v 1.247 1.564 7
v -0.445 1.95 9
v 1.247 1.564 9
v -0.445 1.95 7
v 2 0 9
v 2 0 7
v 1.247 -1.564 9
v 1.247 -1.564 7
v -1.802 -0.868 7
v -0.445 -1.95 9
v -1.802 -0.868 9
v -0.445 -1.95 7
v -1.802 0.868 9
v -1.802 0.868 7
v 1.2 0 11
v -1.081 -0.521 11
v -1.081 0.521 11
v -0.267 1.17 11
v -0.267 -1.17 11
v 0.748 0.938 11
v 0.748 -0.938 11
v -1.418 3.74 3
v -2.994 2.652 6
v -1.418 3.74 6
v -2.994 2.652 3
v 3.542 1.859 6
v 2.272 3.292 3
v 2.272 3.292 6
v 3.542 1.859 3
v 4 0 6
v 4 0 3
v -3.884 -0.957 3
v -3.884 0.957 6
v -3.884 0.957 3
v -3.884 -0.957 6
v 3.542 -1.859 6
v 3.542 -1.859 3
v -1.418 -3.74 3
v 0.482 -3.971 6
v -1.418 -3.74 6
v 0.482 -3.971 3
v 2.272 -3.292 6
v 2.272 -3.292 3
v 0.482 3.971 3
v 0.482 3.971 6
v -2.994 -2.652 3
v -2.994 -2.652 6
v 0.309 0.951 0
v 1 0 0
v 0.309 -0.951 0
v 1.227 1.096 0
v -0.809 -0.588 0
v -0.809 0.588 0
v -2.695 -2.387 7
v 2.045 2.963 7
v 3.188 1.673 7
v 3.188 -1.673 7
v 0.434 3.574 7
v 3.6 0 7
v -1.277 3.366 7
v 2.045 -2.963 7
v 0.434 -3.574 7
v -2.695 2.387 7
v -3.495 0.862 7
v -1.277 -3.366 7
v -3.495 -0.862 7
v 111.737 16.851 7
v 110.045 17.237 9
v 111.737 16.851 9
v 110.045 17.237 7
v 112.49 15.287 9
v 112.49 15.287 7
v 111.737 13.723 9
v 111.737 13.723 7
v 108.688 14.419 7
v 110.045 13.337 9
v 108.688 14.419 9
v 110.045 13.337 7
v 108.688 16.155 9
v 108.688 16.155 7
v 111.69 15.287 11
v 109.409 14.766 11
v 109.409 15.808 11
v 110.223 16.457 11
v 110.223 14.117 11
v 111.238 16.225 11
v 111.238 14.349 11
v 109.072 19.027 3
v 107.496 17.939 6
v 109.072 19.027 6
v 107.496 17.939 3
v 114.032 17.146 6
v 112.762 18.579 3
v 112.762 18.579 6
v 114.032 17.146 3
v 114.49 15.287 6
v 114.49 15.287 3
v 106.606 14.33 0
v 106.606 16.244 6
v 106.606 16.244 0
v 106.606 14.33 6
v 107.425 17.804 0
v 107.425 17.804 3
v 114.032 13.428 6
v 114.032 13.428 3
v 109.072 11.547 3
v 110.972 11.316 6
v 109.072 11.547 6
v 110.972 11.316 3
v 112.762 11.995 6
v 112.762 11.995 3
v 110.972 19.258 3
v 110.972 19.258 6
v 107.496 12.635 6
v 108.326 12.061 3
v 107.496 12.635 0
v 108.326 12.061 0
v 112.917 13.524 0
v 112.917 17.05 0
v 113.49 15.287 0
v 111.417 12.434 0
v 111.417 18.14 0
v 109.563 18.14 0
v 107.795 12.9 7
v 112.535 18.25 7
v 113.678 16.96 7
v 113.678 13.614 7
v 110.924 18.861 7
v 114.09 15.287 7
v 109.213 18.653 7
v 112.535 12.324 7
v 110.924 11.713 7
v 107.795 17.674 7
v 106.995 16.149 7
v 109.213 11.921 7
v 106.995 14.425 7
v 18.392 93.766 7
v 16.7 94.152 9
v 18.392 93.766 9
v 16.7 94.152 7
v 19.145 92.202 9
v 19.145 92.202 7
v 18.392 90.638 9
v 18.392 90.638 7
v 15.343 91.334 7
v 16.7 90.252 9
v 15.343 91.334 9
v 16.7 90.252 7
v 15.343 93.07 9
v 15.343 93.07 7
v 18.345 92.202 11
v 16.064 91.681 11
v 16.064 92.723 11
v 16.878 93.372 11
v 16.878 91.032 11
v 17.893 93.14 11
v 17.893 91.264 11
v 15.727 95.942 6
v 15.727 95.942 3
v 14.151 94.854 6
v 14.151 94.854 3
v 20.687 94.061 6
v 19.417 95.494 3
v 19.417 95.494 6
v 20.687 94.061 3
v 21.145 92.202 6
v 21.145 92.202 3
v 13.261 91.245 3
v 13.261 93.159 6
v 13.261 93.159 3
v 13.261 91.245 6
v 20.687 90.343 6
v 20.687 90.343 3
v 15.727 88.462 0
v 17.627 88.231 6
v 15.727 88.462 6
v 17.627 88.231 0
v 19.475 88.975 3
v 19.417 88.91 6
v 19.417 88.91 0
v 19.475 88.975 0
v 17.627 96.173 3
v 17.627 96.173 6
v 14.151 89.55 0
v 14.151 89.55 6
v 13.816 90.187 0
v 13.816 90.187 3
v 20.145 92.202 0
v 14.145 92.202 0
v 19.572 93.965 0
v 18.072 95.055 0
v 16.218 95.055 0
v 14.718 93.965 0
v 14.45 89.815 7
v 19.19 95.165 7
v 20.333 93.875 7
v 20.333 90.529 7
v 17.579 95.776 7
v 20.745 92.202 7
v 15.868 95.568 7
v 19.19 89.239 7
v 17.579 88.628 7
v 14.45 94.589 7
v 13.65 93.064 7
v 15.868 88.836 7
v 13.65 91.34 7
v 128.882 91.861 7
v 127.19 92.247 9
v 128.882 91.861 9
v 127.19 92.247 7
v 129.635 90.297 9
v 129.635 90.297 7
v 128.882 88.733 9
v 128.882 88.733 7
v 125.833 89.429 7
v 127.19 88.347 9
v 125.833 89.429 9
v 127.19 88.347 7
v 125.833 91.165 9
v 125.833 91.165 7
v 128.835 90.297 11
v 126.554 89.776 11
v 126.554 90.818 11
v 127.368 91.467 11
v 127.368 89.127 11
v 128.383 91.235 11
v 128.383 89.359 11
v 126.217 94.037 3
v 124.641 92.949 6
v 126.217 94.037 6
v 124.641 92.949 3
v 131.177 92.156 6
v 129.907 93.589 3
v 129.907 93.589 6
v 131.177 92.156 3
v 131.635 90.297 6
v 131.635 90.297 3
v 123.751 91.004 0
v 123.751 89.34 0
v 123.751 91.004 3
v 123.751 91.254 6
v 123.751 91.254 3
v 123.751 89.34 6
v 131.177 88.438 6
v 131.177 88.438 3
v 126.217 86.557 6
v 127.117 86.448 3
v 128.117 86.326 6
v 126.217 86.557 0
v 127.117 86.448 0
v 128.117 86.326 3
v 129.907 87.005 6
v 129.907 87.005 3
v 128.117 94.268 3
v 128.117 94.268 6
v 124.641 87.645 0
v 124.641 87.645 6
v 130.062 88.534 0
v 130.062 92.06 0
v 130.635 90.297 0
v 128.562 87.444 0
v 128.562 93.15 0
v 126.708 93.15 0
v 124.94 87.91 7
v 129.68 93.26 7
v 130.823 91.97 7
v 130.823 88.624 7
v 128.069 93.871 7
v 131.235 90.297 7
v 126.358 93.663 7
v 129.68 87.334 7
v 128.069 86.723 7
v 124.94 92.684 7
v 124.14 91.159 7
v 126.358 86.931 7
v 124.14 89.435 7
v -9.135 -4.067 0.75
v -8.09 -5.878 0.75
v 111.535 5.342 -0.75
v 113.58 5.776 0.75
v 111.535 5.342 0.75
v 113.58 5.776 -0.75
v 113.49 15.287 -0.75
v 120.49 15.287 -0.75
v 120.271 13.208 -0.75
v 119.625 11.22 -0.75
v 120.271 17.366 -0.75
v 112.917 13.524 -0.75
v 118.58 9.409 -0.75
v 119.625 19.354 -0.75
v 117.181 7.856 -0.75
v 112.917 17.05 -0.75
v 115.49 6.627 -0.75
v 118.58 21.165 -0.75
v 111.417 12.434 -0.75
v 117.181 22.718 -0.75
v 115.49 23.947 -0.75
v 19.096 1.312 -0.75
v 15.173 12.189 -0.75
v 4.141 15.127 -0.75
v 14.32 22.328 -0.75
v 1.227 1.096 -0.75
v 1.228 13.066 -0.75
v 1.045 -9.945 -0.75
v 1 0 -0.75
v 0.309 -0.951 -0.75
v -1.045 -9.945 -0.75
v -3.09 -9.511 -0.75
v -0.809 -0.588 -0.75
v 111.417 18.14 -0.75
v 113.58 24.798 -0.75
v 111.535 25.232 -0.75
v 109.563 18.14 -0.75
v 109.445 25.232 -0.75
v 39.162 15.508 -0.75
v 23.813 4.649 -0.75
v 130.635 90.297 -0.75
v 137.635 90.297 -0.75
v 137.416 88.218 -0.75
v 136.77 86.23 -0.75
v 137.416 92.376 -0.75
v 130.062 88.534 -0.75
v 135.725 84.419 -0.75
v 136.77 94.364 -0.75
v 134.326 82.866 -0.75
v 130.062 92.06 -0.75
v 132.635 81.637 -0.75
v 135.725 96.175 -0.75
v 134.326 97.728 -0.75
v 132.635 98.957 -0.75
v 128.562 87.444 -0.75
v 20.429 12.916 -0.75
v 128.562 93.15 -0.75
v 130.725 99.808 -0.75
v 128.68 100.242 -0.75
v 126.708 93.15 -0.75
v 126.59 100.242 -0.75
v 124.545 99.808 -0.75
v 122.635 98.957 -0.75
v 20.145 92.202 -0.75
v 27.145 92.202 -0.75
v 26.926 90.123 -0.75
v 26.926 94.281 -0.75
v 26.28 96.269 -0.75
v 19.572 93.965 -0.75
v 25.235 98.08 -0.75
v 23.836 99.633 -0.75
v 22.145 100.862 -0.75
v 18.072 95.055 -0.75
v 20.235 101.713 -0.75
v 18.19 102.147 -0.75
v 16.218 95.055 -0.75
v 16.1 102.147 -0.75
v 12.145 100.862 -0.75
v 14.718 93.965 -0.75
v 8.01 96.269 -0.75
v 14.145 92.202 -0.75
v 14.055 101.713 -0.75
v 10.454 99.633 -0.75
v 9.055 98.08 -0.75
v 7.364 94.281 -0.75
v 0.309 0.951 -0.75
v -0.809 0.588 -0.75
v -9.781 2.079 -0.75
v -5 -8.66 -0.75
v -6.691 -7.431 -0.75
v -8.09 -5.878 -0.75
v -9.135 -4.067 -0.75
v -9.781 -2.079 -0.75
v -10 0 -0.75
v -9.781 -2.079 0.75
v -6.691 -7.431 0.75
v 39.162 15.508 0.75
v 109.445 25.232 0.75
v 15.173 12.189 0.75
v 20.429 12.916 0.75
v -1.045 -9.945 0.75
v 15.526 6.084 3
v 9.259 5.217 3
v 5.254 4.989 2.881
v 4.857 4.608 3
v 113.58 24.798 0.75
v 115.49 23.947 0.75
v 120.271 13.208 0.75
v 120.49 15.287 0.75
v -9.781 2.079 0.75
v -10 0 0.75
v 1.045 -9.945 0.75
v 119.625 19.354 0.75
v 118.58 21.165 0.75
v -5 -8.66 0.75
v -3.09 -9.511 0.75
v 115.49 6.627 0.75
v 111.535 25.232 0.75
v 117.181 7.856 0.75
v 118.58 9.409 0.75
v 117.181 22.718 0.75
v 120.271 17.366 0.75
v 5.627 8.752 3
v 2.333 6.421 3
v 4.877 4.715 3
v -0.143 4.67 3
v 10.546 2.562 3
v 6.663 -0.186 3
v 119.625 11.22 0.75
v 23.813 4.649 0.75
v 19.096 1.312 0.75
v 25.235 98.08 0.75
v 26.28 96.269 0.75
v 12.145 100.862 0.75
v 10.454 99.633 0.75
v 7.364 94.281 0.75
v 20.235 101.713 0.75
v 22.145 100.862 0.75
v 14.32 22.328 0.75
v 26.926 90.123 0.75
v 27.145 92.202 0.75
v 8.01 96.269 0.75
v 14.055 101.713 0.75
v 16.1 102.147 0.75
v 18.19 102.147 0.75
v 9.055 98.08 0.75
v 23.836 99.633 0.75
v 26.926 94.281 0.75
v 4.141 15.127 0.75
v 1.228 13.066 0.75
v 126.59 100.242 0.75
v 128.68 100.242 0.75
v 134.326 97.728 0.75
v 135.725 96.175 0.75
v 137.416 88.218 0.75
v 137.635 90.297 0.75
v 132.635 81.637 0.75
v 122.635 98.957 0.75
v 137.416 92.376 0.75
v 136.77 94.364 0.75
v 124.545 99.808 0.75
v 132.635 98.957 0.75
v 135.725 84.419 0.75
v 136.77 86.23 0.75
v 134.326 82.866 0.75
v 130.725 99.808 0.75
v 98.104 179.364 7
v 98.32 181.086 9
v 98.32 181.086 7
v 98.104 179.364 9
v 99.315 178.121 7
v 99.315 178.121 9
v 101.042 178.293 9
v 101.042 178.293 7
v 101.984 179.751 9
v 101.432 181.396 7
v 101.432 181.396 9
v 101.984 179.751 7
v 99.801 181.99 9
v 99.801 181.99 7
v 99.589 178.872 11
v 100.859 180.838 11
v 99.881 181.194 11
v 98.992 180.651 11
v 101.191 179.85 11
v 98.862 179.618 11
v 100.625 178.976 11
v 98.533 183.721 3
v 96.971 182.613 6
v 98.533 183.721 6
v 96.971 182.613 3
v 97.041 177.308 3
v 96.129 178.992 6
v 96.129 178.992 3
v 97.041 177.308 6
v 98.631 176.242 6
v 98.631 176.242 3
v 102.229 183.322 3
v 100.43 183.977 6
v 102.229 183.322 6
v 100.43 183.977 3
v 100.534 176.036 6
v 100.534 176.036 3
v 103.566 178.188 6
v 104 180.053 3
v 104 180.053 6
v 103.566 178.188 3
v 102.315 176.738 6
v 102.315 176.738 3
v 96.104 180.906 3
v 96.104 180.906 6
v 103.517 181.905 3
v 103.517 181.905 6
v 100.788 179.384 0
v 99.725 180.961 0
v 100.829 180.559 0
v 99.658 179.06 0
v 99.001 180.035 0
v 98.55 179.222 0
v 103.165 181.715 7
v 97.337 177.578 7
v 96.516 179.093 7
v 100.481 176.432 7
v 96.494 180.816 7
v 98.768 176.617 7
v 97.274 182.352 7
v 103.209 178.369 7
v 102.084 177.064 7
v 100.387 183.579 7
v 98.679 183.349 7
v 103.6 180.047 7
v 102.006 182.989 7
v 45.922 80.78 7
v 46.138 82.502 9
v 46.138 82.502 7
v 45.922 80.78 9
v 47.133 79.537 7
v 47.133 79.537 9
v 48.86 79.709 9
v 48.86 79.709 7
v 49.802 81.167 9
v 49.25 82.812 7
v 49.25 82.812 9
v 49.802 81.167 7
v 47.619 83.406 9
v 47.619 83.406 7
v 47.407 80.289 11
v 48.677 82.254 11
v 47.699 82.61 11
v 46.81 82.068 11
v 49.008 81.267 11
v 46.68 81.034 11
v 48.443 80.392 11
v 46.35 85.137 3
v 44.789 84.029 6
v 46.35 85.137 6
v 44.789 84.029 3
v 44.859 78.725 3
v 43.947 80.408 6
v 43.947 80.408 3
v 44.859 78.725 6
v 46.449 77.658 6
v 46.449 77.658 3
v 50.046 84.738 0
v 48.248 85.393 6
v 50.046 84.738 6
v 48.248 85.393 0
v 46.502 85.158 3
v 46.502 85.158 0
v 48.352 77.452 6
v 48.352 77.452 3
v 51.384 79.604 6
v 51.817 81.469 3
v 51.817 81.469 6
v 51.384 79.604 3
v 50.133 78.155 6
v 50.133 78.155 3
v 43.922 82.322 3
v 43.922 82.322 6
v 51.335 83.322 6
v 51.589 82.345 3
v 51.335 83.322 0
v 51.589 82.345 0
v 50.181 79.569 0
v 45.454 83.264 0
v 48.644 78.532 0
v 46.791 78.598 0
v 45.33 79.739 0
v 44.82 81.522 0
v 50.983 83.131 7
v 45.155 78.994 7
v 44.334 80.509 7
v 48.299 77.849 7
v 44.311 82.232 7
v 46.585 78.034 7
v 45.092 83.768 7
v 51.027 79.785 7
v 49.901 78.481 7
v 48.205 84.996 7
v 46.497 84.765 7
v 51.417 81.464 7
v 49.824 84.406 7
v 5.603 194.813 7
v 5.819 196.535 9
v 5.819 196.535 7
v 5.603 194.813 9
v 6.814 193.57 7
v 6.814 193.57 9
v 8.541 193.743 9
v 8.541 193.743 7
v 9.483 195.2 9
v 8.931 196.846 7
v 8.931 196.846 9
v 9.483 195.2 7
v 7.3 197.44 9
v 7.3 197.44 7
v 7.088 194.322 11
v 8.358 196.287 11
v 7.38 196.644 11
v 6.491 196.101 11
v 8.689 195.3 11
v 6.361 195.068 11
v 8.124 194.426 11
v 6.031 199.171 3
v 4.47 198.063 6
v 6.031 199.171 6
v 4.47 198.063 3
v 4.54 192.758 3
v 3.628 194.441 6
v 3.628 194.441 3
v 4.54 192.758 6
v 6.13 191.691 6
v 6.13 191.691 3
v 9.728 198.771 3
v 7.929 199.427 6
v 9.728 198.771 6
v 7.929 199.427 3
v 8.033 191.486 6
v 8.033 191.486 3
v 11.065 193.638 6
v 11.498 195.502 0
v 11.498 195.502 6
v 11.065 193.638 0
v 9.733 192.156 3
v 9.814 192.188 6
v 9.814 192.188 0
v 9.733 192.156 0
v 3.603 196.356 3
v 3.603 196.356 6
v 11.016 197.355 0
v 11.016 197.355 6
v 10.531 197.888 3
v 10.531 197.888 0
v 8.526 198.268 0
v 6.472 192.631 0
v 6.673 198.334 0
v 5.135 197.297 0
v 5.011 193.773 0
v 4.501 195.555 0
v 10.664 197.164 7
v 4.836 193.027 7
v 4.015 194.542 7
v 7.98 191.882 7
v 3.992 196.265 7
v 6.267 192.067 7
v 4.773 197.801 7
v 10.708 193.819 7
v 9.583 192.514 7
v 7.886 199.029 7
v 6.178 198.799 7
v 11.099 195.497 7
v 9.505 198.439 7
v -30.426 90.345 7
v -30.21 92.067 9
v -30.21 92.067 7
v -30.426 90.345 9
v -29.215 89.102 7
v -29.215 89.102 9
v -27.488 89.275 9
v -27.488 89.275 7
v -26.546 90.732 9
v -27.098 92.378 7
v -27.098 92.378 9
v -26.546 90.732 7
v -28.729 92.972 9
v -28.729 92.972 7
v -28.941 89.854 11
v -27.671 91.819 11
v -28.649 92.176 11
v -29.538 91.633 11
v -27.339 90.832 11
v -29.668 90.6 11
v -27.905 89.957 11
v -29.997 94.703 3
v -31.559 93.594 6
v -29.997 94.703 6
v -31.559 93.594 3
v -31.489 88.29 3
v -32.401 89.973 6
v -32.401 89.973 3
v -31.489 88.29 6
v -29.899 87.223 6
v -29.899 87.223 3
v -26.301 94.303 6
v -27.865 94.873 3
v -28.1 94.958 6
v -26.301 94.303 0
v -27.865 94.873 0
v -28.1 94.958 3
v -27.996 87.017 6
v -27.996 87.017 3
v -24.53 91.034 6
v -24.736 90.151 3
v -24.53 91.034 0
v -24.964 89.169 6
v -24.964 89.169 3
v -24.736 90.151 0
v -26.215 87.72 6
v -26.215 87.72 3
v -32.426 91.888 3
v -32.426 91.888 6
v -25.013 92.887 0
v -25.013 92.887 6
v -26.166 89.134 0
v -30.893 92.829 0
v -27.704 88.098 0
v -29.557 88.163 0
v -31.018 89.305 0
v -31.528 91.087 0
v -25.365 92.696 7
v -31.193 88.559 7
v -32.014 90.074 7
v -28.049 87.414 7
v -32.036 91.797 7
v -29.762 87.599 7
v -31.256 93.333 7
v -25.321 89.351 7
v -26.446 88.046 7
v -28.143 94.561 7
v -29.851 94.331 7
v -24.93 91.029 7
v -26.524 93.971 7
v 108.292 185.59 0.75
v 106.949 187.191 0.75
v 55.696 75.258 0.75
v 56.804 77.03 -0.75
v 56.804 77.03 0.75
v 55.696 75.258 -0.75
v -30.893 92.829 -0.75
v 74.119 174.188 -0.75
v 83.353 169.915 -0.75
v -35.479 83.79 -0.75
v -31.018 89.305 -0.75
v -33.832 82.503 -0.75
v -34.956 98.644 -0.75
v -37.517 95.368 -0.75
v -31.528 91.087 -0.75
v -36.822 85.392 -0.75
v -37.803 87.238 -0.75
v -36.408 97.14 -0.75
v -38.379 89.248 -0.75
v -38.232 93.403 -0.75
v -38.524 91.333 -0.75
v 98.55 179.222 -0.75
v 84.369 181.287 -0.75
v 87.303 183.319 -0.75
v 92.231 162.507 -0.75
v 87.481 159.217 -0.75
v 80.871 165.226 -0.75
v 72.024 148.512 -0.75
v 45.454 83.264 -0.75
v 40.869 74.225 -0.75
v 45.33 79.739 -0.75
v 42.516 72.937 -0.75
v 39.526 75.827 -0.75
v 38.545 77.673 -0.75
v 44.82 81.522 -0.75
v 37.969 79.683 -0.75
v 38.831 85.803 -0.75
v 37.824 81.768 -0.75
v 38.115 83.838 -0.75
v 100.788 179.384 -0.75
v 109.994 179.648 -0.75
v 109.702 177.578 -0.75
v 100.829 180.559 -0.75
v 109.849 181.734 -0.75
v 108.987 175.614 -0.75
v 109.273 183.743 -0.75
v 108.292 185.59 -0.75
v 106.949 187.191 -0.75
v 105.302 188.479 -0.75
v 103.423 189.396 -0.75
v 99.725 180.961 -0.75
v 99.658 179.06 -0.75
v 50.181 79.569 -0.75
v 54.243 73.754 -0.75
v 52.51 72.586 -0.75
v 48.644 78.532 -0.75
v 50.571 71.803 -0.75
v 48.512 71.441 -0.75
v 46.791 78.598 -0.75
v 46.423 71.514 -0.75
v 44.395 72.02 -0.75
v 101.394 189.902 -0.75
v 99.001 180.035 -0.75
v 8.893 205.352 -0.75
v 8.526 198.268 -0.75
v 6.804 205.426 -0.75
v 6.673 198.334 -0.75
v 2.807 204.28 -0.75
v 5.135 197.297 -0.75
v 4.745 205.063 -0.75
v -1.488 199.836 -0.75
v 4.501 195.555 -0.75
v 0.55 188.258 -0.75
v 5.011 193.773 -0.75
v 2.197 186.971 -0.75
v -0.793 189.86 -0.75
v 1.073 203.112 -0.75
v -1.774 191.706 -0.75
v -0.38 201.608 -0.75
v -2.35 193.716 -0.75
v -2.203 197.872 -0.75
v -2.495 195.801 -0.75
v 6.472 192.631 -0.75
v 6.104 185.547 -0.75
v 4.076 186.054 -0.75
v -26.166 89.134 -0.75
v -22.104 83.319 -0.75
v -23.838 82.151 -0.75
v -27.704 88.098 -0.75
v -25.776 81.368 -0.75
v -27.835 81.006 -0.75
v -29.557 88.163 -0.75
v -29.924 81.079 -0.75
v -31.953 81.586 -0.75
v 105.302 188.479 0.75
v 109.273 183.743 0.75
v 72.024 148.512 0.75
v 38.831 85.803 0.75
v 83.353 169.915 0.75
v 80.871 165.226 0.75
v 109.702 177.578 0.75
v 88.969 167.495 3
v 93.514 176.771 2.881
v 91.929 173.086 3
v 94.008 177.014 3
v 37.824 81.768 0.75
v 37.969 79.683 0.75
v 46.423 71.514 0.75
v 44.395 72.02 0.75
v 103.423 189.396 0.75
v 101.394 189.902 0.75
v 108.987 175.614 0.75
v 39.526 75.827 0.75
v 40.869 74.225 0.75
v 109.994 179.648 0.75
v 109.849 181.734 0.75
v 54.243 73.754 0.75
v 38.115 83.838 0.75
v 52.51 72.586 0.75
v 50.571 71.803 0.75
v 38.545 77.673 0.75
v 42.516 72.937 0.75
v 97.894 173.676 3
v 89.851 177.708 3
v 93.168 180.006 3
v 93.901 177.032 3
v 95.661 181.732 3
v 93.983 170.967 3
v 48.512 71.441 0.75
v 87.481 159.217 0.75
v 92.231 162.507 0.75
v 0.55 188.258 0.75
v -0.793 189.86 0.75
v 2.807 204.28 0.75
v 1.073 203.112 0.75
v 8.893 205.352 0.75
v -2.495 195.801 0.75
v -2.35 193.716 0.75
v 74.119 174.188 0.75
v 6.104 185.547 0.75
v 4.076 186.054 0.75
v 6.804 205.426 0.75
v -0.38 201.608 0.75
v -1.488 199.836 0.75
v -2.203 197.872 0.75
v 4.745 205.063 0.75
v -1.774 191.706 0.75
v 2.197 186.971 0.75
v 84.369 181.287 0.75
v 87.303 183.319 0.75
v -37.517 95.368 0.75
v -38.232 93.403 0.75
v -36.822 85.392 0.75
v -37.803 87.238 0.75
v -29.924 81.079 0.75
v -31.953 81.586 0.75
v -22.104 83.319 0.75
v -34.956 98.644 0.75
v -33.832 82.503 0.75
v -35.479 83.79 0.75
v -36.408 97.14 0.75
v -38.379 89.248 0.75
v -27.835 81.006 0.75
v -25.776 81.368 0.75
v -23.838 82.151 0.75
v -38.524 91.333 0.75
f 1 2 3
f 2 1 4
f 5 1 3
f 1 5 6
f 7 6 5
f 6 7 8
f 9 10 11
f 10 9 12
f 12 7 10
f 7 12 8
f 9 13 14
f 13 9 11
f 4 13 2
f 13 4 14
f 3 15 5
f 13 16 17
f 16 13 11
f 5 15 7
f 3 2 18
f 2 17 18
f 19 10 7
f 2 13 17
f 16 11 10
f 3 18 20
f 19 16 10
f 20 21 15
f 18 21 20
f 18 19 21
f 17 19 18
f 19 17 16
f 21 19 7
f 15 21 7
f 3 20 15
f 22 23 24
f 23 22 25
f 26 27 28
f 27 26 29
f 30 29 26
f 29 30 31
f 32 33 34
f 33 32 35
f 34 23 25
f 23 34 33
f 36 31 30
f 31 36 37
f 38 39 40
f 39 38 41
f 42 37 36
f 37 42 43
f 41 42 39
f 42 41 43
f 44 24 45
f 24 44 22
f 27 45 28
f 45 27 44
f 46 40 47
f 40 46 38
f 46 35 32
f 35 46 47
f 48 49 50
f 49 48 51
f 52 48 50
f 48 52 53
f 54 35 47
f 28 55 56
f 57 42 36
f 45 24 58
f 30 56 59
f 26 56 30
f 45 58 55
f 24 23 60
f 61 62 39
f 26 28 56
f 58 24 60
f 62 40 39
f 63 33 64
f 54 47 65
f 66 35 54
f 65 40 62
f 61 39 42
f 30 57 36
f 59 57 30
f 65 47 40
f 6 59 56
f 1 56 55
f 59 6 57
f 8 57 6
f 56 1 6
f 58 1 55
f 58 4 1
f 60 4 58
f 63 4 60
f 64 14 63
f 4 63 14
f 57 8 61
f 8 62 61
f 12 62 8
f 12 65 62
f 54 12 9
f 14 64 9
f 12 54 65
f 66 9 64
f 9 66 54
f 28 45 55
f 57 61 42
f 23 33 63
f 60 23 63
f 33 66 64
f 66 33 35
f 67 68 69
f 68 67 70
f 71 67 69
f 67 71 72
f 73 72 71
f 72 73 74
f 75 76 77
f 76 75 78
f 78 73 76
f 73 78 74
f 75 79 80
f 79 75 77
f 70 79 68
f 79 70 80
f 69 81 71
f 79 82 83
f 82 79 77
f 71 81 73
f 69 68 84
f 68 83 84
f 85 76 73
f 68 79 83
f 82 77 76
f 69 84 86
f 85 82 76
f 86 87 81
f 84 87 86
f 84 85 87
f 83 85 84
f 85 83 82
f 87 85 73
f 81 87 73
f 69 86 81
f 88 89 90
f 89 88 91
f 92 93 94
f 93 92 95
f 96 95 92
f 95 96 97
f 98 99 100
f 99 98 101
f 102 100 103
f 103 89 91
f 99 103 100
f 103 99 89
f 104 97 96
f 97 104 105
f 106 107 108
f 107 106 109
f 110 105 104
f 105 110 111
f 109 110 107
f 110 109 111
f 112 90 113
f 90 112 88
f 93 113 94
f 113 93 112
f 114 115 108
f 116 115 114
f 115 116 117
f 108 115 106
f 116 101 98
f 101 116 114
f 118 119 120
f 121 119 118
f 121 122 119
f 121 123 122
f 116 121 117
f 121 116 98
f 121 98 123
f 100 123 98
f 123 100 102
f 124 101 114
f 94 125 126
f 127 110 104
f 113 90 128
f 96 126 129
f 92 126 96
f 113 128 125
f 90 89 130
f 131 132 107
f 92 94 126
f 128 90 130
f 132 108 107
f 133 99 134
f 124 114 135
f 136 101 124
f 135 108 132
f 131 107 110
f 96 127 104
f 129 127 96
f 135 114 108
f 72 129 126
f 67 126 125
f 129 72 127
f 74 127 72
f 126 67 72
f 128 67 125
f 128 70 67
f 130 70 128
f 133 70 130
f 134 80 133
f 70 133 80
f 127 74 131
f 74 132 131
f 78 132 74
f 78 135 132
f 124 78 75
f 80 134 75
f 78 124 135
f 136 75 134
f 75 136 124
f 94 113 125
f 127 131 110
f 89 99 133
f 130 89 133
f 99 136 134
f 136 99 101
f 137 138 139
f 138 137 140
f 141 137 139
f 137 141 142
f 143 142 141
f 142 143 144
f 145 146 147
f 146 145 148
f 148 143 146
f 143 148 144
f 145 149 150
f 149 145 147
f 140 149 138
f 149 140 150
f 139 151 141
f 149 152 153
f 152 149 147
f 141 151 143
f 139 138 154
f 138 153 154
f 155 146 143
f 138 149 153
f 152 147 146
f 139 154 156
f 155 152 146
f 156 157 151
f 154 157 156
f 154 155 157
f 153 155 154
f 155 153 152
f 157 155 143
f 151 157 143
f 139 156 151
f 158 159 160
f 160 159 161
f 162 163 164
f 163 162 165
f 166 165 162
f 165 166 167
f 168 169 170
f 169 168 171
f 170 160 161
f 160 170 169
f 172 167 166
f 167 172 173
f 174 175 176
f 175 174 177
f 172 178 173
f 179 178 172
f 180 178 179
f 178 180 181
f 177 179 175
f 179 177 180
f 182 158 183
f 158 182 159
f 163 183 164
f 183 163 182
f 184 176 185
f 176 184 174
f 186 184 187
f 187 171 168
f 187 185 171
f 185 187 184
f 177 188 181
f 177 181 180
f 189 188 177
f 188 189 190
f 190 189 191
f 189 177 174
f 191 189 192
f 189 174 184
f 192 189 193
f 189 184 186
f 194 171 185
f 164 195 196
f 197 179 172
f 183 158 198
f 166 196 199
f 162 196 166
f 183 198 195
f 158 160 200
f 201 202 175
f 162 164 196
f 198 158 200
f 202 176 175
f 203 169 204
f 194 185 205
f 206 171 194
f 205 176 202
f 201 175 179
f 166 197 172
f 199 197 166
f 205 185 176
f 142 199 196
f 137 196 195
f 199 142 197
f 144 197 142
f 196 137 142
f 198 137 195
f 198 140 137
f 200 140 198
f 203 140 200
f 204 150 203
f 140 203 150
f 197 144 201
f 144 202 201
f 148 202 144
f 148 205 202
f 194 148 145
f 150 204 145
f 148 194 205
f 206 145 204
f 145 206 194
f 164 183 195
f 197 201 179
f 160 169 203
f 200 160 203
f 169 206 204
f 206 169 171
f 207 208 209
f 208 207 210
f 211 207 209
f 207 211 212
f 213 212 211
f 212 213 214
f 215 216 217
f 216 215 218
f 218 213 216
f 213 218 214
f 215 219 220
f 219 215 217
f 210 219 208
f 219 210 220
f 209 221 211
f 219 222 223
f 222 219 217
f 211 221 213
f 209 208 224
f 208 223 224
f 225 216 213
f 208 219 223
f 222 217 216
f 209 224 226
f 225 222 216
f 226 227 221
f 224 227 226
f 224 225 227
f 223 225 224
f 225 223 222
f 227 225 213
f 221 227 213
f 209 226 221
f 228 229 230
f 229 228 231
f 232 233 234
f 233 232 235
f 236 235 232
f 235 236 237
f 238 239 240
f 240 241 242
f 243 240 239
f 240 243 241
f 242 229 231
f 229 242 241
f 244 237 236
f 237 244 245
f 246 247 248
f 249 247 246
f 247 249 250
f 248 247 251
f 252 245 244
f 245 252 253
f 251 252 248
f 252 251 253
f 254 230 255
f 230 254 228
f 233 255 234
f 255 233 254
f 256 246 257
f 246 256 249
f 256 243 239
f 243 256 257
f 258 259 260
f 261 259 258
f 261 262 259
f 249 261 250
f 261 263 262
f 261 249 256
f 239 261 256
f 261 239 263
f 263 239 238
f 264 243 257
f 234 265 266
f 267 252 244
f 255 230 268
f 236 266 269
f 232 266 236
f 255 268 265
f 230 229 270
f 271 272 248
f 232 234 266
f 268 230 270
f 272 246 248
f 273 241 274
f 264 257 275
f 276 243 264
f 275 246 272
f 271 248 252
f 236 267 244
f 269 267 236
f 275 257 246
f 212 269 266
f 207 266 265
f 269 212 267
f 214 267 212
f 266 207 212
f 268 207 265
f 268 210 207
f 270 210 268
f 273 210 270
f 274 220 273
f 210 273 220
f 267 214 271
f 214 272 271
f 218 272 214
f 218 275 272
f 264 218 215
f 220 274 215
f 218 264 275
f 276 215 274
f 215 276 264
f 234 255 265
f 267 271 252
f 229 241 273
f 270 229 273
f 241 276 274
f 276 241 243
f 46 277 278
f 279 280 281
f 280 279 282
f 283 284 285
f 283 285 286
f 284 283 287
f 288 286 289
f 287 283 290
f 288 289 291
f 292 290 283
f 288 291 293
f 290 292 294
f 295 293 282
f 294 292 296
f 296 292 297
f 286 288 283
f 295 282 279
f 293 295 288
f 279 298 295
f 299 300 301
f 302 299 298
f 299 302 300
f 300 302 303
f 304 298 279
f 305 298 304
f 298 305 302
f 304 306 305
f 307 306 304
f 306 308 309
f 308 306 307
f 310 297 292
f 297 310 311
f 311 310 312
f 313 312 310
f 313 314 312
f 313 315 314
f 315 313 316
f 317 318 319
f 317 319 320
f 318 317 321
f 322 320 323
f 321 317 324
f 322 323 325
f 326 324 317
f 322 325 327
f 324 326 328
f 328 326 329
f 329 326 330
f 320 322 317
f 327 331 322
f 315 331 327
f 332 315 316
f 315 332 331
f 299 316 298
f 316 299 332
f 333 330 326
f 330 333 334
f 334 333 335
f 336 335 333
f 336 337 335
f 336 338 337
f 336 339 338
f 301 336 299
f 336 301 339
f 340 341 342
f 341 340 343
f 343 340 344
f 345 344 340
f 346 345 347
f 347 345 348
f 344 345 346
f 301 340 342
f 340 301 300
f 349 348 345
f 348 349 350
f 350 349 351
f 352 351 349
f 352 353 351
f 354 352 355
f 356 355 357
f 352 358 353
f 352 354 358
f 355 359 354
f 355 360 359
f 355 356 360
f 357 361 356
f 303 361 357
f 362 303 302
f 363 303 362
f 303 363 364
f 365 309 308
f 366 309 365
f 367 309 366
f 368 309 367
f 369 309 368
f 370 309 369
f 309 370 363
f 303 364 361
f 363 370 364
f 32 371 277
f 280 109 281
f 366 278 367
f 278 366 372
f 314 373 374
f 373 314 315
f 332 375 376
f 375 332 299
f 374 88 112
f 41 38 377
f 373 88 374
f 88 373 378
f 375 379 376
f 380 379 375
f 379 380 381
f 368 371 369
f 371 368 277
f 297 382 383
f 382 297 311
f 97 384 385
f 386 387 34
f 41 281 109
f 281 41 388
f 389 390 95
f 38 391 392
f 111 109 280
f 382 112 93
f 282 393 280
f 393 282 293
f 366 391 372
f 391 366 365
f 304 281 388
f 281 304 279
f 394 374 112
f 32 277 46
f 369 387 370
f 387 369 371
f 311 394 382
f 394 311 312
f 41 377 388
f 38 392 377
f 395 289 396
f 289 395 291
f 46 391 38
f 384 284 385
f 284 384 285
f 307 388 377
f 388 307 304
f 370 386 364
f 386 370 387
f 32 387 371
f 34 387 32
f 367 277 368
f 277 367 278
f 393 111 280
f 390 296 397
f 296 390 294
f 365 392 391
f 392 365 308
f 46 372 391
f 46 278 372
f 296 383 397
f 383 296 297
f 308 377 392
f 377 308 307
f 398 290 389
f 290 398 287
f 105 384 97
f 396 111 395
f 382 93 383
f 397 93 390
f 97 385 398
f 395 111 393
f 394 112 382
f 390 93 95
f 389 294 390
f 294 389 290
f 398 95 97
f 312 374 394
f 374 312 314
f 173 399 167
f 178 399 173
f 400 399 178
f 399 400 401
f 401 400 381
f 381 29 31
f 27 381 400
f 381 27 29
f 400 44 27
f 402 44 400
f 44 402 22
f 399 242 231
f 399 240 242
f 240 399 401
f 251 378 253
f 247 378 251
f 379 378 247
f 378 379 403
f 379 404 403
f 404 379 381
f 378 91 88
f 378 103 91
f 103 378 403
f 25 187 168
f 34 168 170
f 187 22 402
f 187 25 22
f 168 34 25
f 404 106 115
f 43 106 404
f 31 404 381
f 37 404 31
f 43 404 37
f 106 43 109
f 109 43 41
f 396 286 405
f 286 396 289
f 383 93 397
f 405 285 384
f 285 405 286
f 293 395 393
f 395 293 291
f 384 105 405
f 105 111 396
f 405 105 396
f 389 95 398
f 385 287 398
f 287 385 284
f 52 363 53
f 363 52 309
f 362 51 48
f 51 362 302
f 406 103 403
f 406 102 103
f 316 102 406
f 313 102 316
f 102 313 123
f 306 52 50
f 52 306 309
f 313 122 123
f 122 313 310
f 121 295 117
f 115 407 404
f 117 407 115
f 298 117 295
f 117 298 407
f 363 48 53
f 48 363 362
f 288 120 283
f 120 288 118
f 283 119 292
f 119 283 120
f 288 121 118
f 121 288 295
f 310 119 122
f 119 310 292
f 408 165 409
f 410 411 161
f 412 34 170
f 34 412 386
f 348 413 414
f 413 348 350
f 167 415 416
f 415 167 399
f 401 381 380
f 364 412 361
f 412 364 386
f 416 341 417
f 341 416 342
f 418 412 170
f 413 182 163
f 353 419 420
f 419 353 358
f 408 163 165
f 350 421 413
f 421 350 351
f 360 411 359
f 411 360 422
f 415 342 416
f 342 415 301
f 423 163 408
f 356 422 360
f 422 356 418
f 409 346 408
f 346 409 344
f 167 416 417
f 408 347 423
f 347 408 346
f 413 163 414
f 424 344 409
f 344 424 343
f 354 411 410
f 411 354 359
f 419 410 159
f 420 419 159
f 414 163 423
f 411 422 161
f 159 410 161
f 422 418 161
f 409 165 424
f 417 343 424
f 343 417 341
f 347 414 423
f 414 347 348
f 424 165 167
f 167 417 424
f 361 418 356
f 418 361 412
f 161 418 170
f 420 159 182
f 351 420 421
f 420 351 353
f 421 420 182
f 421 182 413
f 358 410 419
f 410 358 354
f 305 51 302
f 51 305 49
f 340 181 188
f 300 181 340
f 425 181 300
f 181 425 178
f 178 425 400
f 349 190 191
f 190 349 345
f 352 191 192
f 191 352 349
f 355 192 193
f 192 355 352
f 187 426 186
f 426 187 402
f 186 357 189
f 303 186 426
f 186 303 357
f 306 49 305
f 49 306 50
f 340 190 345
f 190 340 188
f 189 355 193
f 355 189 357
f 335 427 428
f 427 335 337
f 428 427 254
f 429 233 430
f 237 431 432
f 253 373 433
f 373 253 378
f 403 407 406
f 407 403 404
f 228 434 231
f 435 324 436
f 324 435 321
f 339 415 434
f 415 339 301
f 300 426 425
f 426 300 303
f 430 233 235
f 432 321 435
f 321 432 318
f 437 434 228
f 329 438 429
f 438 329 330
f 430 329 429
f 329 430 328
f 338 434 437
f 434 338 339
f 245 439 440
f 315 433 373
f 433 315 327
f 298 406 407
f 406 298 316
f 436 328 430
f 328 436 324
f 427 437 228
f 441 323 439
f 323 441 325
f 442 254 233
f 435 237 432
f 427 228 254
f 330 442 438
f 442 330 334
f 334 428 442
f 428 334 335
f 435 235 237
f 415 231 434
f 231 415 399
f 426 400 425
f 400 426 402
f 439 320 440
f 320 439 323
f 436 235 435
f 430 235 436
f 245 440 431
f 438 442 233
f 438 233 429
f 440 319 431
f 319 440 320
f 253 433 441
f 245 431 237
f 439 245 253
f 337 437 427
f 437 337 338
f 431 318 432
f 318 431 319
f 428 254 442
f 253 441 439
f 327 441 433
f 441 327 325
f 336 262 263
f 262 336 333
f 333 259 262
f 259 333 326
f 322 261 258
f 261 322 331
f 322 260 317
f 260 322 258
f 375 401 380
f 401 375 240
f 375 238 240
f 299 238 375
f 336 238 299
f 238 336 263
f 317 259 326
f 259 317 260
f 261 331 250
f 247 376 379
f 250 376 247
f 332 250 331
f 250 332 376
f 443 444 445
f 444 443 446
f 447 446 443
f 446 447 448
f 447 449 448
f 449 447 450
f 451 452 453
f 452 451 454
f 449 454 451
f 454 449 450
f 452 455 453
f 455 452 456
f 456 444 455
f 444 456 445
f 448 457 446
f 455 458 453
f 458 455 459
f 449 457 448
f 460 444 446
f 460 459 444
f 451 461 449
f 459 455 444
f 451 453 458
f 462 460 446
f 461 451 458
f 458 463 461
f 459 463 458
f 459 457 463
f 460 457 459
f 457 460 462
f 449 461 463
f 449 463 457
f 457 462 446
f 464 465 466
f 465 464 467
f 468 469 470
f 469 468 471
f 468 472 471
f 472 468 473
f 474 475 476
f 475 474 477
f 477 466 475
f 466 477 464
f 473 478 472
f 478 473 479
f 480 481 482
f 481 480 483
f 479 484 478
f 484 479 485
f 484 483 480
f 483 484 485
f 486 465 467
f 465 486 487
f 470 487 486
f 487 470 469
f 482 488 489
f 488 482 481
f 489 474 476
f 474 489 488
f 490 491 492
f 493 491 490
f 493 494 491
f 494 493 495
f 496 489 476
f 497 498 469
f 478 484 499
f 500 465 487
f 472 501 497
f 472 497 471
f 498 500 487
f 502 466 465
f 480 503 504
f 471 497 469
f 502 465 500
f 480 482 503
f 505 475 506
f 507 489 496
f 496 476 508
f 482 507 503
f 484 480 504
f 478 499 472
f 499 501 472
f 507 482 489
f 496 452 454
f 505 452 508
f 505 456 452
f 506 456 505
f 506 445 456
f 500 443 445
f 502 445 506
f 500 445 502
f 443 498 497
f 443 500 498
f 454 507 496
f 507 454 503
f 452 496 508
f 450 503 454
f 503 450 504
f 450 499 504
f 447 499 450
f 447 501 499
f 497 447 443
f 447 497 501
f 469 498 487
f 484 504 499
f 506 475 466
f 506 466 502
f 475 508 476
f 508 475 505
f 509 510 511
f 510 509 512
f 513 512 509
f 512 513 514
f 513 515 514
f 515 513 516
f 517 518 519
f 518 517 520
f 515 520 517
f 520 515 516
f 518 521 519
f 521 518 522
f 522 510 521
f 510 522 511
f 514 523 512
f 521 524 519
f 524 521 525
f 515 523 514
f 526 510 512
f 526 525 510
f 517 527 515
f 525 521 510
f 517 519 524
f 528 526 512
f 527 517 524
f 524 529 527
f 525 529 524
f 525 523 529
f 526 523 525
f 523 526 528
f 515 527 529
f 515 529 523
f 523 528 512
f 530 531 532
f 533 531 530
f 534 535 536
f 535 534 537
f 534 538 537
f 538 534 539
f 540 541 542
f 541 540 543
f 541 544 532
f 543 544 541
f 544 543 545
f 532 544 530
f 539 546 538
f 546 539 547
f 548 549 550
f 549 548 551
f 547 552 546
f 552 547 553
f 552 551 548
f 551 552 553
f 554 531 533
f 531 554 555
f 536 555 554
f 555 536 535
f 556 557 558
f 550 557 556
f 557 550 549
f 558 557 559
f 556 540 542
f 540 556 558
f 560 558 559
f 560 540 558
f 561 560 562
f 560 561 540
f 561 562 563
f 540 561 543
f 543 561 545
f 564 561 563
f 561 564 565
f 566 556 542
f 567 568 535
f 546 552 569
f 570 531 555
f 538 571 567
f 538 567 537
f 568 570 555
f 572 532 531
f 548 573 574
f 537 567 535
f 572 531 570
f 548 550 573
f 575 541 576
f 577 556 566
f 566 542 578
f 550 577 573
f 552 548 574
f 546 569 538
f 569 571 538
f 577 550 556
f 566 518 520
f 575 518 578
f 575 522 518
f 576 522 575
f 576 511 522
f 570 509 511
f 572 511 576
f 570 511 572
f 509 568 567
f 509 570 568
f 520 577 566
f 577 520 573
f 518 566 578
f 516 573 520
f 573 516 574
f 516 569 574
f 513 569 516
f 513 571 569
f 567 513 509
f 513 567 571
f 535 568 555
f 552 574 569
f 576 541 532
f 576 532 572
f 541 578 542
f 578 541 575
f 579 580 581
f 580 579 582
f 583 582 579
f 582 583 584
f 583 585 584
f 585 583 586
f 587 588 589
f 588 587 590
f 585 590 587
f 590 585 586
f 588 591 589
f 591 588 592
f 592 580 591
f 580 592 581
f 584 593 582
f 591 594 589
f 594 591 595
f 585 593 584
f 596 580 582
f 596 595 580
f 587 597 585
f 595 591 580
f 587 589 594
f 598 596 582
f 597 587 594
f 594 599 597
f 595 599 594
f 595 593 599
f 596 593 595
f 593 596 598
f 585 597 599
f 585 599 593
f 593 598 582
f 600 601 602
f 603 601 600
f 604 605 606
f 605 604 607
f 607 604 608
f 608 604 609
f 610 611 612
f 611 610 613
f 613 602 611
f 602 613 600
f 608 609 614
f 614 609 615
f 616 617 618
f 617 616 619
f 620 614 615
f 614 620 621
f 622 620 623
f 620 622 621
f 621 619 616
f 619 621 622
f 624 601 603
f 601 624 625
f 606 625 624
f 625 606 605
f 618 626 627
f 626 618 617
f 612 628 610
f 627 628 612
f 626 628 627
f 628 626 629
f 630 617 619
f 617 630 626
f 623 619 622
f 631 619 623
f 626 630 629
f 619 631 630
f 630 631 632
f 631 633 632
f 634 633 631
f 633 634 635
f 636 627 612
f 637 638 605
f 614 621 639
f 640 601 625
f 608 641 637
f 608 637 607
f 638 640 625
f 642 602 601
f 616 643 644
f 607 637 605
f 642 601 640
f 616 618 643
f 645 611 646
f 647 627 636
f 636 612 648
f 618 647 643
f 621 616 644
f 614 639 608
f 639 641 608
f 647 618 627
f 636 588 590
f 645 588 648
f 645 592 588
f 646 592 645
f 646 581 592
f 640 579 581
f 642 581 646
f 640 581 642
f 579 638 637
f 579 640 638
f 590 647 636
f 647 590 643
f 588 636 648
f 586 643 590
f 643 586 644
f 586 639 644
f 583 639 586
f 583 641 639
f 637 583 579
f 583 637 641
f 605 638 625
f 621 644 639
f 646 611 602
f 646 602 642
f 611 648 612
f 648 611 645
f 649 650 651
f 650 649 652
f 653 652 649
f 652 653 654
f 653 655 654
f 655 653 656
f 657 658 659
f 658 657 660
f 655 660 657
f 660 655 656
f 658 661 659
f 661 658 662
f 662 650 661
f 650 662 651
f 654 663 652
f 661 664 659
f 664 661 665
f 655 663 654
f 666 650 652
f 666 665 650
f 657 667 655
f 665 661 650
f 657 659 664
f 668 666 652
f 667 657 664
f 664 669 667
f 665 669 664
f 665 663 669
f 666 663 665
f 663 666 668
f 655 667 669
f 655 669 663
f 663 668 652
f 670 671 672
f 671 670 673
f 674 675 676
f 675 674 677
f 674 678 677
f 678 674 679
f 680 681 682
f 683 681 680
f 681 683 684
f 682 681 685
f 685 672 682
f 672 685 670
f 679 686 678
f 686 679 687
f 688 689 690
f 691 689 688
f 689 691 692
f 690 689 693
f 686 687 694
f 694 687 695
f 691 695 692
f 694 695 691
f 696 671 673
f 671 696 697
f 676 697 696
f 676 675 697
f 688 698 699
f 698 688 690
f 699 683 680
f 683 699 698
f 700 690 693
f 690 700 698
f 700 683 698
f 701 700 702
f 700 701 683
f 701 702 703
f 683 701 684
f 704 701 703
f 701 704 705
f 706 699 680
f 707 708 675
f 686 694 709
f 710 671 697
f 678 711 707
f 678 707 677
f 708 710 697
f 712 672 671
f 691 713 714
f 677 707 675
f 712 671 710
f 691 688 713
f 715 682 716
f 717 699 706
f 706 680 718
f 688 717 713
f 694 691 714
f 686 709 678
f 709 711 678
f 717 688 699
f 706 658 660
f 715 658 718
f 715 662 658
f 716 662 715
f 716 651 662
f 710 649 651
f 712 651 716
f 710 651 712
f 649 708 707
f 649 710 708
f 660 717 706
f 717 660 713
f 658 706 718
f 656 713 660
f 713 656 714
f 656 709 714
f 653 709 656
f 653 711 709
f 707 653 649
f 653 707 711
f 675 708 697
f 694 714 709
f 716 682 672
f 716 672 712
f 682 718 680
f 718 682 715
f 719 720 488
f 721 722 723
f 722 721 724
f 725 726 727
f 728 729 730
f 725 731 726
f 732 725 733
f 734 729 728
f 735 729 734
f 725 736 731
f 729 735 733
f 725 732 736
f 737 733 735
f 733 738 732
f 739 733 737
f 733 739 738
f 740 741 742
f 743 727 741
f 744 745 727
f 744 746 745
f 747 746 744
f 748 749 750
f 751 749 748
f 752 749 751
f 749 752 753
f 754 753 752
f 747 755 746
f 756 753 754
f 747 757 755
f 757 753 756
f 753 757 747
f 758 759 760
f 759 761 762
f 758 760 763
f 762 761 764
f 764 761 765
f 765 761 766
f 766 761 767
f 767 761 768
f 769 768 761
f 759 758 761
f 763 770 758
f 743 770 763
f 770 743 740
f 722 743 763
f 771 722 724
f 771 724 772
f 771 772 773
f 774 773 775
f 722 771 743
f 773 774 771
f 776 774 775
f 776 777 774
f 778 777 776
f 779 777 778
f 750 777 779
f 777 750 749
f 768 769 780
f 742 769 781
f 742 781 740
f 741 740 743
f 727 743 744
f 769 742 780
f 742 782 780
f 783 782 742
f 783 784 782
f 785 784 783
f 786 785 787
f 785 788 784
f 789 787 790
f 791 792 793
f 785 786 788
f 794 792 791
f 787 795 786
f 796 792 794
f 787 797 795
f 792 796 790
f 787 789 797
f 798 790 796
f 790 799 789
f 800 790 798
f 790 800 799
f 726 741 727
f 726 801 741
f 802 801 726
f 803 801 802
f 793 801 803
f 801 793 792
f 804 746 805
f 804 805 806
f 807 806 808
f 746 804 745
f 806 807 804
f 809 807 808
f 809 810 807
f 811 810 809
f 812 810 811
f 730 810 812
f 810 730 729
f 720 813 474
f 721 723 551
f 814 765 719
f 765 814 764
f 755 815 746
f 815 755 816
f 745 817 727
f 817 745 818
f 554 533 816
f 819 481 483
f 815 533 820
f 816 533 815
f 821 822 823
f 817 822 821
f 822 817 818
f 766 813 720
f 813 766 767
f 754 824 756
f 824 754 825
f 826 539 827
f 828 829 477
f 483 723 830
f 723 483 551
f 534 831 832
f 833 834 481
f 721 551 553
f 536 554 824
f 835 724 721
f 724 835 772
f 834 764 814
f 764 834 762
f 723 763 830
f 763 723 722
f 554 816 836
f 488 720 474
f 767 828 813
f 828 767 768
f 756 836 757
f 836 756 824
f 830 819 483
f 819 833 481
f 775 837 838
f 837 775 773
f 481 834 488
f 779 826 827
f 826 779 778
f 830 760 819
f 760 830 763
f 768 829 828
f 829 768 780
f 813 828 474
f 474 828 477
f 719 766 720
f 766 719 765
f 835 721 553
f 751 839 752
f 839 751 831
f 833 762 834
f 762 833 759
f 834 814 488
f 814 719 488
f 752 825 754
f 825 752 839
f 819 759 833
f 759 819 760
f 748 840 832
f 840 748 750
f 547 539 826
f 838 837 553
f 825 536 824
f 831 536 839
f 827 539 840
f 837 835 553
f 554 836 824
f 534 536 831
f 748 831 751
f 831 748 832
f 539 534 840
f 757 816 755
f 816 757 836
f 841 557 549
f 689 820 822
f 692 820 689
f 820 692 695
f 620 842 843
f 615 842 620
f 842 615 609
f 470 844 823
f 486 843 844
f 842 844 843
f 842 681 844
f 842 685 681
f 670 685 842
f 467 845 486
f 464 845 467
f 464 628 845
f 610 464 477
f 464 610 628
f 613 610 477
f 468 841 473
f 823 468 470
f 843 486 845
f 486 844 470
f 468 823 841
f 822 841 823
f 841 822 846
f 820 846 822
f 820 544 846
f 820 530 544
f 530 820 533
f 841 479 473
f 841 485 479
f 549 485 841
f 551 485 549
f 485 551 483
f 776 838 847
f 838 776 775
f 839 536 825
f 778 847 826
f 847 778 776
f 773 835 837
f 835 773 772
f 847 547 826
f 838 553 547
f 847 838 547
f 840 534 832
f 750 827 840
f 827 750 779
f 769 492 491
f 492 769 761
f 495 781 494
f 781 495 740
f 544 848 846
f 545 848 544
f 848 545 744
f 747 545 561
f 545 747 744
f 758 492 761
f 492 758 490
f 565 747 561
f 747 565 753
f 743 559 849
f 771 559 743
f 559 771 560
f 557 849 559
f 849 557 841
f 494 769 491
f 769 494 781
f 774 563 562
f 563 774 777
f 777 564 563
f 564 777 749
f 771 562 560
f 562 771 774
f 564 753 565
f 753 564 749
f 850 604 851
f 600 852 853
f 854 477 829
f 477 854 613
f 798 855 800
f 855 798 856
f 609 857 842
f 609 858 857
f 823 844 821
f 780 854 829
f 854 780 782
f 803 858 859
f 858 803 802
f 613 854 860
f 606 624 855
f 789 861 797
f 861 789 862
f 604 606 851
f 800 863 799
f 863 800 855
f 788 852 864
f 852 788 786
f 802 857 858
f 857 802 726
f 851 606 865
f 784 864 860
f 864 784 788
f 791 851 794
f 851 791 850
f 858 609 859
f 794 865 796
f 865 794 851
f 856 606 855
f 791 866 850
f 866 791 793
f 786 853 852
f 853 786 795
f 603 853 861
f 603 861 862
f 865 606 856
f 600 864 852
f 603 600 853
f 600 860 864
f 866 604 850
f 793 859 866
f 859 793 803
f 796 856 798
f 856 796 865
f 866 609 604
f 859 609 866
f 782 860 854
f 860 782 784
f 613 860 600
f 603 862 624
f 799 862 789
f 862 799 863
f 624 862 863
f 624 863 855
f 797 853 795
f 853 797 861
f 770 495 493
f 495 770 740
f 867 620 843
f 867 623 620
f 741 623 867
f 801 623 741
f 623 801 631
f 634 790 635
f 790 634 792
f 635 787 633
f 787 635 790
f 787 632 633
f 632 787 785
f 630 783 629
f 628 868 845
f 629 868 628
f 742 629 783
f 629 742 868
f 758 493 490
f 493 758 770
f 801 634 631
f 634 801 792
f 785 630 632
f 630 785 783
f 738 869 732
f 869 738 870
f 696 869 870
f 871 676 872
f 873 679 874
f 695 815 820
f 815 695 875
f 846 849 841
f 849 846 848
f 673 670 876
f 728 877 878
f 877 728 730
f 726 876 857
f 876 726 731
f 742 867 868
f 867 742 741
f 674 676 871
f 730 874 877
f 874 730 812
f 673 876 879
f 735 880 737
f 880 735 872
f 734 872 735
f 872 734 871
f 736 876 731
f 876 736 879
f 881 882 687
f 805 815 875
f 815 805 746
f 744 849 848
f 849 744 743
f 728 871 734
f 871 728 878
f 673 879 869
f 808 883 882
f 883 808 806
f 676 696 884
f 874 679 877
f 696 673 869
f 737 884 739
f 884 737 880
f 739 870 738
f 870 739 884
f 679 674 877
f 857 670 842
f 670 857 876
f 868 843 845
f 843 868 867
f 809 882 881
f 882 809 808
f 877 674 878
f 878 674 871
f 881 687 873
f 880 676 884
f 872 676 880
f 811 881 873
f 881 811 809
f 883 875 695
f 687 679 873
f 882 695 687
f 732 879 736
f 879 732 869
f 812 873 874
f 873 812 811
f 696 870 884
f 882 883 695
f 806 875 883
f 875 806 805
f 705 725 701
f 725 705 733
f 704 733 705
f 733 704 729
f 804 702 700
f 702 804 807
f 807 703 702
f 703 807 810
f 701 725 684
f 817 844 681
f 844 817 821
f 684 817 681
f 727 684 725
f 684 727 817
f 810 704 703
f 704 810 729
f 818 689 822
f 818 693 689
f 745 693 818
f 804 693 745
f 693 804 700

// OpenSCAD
module pin(t) {
    baser = 4;
    pinr = 2;
    translate(t) {
        translate([0,0,3]) {
            cylinder(h = 6, r1 = baser, r2 = baser, center = true);
            translate([0,0,3.5]) {
                cylinder(h = 1, r1 = baser, r2 = baser * 0.9, center = true);
            };
            translate([0,0,4.5]) {
                cylinder(h = 3, r1 = pinr, r2 = pinr, center = true);
                translate([0,0,2.5]) {
                    cylinder(h = 2, r1 = pinr, r2 = pinr * 0.6, center = true);
                };
            };
        };
    };
}

module base(t) {
    translate(t) {
        cylinder(h=3, r=4);
        cylinder(h=1.5, r=10, center=true);
    };
}

module bar(t1, t2) {
    difference() {
        hull() {base(t1); base(t2);};
        hull() {translate(t1) cylinder(r=1, h=10, center=true); translate(t2) cylinder(r=3, h=10, center=true);};
    }
}

p = [[0,0,0], [110.49,15.287,0], [17.145,92.202,0], [127.635,90.297,0]];

module stand() {
    pin(p[0]);
    pin(p[1]);
    pin(p[2]);
    pin(p[3]);

    bar(p[0], p[1]);
    bar(p[0], p[2]);
    bar(p[0], p[3]);
}

stand();
translate([100,180,0])
mirror([1,0.7,0]) stand();
